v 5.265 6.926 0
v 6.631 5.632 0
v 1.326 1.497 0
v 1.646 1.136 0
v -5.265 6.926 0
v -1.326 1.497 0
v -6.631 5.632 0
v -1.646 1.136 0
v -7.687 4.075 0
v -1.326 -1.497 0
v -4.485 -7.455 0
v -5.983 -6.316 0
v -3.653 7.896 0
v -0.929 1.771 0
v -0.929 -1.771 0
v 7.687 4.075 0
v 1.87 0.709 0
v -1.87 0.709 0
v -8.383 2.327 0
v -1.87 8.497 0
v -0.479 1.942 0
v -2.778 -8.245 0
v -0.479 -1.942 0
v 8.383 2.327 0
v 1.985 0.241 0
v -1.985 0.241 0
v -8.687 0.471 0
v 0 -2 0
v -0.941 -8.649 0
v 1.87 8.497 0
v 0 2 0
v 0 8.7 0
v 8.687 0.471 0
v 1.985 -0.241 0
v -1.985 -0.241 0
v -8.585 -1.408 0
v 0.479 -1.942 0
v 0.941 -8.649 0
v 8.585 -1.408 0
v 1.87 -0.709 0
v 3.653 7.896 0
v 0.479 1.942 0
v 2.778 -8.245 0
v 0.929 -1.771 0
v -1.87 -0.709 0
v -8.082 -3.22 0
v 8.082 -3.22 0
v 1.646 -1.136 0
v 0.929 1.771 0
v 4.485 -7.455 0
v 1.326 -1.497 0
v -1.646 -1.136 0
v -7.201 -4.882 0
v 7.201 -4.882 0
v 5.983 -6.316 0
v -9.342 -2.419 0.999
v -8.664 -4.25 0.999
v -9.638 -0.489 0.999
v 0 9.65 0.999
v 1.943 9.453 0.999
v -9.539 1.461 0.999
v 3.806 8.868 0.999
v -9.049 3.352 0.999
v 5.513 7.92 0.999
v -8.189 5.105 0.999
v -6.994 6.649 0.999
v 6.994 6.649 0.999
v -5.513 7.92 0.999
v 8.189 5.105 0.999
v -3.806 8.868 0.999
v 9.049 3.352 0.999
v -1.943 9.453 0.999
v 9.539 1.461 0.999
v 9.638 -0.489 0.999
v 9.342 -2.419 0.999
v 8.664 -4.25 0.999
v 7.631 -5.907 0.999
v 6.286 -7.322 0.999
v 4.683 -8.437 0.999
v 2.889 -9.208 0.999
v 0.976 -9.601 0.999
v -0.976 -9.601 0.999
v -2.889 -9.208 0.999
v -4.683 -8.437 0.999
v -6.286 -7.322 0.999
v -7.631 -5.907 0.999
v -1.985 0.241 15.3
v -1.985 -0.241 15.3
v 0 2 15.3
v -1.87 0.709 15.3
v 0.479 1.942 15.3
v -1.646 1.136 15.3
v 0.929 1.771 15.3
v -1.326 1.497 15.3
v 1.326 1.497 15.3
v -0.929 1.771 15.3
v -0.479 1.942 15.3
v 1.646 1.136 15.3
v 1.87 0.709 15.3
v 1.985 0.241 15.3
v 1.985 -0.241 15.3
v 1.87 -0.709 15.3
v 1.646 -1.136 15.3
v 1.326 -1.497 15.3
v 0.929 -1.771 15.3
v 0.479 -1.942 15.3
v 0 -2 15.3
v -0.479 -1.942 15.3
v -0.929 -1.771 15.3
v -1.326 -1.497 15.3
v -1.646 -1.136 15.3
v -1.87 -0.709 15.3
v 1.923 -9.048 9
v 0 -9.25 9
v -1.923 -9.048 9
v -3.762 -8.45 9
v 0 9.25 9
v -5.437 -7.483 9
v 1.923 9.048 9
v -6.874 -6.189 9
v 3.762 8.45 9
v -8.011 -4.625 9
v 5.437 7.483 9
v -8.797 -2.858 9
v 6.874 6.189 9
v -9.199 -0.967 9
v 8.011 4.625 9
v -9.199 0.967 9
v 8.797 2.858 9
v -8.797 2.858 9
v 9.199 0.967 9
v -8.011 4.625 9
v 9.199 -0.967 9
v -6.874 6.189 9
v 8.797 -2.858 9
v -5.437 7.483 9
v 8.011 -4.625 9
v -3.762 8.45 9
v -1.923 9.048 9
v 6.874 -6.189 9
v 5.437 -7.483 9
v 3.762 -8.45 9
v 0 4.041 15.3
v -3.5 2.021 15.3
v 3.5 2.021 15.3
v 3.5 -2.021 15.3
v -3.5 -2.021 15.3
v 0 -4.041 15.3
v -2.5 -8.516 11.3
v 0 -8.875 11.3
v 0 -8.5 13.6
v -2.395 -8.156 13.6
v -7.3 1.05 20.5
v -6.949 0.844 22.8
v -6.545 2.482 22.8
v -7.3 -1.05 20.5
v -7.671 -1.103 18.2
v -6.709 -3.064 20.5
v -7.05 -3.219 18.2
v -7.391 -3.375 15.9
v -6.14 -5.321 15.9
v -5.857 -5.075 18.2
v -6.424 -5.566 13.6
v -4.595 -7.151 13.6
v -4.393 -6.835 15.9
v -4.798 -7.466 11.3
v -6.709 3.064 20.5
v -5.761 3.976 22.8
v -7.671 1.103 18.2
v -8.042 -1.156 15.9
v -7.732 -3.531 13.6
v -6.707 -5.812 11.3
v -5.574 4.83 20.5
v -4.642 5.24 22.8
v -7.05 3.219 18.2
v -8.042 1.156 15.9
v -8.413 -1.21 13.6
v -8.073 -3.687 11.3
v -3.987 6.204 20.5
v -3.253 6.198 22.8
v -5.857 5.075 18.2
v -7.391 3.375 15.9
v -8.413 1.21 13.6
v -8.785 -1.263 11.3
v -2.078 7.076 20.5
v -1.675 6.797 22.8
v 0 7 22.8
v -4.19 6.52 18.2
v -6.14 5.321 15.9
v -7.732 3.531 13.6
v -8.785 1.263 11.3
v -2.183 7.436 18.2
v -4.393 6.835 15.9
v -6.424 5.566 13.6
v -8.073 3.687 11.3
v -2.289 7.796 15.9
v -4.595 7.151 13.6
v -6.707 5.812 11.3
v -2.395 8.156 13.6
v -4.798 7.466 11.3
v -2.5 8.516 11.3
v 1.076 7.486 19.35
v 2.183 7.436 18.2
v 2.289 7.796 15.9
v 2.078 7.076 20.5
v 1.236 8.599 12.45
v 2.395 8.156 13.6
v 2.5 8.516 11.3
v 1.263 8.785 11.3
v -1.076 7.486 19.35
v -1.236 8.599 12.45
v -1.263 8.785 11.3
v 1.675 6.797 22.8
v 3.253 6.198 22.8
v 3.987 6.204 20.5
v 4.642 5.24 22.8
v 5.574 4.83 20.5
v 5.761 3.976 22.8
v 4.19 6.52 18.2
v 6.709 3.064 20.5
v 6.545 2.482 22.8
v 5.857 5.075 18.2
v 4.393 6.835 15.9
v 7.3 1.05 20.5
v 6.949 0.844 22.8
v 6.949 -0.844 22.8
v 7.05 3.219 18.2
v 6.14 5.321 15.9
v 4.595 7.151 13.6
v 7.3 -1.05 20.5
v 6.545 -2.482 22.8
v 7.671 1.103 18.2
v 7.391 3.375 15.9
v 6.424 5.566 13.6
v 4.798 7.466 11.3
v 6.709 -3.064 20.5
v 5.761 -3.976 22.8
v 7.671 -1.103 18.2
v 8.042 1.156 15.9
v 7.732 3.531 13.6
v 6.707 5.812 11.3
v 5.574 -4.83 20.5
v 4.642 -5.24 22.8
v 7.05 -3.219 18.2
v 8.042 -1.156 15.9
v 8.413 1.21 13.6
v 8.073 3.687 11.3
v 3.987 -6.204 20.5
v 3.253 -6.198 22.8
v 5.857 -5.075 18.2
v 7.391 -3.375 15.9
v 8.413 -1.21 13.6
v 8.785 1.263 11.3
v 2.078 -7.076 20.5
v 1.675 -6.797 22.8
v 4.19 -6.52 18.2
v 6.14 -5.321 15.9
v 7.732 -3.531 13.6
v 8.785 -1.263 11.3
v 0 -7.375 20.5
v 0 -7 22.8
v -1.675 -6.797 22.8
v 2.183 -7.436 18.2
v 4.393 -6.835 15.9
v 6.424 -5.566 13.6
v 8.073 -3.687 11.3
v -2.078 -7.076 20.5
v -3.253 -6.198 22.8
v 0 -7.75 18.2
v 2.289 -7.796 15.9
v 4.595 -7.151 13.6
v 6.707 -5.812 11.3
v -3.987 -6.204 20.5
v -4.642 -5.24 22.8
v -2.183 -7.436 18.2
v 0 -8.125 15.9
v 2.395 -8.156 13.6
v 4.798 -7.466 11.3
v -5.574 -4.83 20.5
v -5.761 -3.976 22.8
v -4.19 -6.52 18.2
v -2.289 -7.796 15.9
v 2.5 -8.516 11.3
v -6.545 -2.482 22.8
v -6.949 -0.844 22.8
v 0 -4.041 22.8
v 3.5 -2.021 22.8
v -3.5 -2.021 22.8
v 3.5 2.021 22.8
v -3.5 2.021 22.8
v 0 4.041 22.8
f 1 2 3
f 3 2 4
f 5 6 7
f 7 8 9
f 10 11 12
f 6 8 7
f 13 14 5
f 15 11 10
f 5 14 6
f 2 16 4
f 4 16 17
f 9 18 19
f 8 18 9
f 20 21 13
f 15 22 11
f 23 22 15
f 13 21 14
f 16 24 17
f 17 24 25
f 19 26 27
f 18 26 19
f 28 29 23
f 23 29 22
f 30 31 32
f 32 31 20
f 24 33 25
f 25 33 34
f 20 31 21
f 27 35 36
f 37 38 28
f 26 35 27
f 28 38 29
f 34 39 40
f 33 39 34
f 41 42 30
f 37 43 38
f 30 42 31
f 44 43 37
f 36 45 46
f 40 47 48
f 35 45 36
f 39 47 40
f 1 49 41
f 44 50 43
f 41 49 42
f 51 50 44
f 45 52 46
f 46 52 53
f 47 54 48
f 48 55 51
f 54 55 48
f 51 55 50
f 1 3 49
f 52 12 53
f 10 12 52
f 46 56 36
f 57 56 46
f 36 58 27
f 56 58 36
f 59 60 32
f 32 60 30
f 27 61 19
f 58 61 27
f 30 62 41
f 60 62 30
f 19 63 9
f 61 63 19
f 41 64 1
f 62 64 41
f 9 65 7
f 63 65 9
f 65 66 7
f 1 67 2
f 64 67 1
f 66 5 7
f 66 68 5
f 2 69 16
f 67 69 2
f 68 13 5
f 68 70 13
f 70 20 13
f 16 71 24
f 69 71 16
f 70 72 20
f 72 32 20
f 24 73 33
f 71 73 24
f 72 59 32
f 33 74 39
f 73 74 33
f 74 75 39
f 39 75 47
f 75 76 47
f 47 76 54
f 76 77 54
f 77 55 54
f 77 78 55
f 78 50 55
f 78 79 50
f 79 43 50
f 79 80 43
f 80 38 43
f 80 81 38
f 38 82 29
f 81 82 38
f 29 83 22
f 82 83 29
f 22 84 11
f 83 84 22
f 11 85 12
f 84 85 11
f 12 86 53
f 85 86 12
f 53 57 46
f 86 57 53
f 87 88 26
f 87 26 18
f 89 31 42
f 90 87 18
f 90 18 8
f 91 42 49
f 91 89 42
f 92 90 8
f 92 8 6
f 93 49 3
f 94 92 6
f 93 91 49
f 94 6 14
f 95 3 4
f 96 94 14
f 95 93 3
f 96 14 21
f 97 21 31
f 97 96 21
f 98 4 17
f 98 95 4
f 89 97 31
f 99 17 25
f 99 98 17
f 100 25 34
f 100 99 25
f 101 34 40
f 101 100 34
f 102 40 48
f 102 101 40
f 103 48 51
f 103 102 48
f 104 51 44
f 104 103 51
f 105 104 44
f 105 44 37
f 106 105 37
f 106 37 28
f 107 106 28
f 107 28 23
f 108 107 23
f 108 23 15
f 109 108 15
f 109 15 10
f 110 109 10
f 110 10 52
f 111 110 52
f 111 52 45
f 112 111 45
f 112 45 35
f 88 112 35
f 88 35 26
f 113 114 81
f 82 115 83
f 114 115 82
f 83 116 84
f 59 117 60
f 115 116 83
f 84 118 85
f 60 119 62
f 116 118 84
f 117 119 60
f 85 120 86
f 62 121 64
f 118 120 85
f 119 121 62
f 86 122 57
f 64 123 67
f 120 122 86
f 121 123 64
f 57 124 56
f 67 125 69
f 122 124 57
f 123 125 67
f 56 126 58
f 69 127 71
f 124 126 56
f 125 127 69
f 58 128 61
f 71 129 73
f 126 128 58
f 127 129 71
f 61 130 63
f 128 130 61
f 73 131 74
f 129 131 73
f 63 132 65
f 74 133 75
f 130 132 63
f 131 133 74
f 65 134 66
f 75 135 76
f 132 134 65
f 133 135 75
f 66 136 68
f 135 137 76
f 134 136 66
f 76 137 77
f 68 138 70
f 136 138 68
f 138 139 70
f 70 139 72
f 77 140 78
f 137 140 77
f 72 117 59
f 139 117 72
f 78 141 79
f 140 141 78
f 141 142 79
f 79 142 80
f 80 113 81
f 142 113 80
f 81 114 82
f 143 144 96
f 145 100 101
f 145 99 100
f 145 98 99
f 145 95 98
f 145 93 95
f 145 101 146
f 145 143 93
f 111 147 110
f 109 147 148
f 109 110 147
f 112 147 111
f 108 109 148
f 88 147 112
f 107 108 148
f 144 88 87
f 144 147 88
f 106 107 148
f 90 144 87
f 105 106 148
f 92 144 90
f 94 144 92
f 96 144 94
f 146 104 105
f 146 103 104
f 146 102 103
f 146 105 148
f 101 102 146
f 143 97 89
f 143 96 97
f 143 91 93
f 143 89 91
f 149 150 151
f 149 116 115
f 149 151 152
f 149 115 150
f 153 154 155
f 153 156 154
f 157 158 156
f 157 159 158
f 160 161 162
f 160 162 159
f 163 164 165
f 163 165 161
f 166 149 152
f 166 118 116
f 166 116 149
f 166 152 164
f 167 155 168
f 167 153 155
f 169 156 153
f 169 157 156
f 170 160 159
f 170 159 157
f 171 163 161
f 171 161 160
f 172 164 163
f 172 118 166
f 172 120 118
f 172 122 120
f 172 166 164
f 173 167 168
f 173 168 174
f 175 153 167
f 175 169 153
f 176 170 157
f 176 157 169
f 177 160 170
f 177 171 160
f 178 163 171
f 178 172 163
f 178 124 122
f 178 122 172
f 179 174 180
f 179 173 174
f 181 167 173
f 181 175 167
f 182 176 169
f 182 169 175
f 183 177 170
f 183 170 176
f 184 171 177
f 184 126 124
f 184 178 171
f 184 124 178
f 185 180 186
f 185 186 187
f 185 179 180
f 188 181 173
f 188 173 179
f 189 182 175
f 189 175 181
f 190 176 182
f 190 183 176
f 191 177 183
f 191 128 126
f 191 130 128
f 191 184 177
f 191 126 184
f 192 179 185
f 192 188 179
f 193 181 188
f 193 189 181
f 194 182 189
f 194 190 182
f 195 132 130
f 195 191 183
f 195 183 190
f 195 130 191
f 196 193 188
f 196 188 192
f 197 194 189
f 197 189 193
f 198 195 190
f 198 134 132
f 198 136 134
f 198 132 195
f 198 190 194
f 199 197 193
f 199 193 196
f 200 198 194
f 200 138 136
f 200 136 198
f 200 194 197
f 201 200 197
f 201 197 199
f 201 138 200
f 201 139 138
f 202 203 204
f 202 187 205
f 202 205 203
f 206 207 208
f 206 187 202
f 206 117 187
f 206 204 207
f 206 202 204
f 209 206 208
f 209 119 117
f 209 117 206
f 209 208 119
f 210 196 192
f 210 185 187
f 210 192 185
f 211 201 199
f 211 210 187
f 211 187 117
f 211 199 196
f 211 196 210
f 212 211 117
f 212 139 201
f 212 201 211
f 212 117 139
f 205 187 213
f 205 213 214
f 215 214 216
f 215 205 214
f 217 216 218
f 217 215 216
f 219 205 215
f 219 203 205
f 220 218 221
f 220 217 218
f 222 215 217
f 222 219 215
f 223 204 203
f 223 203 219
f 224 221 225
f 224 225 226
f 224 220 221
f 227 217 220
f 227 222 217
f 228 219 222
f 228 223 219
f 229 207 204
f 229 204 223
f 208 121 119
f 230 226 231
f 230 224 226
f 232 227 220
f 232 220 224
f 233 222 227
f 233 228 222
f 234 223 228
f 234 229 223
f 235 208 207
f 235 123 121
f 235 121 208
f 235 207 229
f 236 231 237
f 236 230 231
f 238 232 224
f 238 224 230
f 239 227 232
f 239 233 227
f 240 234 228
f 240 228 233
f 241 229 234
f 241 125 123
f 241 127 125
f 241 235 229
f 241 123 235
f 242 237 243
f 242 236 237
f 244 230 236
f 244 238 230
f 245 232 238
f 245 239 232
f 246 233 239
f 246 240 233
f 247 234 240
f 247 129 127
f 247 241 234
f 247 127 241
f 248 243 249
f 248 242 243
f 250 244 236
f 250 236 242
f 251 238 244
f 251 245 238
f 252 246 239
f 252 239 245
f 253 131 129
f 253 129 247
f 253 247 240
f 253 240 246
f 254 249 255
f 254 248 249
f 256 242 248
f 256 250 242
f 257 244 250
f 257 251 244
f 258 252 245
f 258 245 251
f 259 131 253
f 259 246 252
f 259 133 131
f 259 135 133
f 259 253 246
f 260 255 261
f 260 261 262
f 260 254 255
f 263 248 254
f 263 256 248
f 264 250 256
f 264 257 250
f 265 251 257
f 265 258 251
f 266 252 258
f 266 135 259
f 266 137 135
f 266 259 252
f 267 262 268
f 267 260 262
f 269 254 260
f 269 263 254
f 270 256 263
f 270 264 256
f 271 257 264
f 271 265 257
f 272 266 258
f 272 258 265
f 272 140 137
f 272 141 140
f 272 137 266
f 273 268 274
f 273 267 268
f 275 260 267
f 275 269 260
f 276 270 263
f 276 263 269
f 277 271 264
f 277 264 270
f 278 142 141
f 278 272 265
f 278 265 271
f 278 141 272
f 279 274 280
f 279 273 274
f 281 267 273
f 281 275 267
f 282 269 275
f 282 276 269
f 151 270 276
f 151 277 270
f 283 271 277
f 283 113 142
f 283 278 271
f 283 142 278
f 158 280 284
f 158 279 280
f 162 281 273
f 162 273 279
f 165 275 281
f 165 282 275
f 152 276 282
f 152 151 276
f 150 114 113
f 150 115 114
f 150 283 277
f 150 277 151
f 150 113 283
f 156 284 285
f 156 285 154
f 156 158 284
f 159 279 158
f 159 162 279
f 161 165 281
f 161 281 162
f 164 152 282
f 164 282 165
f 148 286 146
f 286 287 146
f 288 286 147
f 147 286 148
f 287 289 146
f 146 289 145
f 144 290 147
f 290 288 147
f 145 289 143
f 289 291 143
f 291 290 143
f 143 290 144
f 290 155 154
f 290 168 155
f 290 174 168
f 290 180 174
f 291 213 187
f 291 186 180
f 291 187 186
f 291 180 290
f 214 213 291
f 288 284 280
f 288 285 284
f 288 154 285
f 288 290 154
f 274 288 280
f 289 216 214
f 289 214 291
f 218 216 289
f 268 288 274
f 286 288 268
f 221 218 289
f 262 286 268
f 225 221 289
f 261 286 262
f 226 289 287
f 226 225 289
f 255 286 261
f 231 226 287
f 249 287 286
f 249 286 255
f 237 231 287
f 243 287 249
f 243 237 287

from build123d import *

# Parameters (mm, degrees)
POCKET_DEPTH = 7.5
CHAMFER_SIZE = 1


with BuildPart() as part:
    # Sketch → Revolution (revolve)
    with BuildSketch(Plane.YZ):
        Polygon((2, 0), (9.7, 0), (9.25, 9), (7, 22.8), (2, 22.8), align=None)
    revolve(axis=Axis((0, 0, 0), (0, 0, 1)))

    # Sketch001 (on Face4 of Revolution) → Pocket (cut)
    with BuildSketch(Plane(origin=(0, 0, 22.8), x_dir=(0, -1, 0), z_dir=(0, 0, 1))):
        Polygon((4.041452, 0), (2.020726, 3.5), (-2.020726, 3.5), (-4.041452, 0), (-2.020726, -3.5), (2.020726, -3.5), align=None)
    extrude(amount=-POCKET_DEPTH, mode=Mode.SUBTRACT)

    # Chamfer
    chamfer_edges = [part.edges().sort_by_distance(p)[0] for p in [
        (0, -9.7, 0),
    ]]
    chamfer(chamfer_edges, length=CHAMFER_SIZE)


solid = part.part
